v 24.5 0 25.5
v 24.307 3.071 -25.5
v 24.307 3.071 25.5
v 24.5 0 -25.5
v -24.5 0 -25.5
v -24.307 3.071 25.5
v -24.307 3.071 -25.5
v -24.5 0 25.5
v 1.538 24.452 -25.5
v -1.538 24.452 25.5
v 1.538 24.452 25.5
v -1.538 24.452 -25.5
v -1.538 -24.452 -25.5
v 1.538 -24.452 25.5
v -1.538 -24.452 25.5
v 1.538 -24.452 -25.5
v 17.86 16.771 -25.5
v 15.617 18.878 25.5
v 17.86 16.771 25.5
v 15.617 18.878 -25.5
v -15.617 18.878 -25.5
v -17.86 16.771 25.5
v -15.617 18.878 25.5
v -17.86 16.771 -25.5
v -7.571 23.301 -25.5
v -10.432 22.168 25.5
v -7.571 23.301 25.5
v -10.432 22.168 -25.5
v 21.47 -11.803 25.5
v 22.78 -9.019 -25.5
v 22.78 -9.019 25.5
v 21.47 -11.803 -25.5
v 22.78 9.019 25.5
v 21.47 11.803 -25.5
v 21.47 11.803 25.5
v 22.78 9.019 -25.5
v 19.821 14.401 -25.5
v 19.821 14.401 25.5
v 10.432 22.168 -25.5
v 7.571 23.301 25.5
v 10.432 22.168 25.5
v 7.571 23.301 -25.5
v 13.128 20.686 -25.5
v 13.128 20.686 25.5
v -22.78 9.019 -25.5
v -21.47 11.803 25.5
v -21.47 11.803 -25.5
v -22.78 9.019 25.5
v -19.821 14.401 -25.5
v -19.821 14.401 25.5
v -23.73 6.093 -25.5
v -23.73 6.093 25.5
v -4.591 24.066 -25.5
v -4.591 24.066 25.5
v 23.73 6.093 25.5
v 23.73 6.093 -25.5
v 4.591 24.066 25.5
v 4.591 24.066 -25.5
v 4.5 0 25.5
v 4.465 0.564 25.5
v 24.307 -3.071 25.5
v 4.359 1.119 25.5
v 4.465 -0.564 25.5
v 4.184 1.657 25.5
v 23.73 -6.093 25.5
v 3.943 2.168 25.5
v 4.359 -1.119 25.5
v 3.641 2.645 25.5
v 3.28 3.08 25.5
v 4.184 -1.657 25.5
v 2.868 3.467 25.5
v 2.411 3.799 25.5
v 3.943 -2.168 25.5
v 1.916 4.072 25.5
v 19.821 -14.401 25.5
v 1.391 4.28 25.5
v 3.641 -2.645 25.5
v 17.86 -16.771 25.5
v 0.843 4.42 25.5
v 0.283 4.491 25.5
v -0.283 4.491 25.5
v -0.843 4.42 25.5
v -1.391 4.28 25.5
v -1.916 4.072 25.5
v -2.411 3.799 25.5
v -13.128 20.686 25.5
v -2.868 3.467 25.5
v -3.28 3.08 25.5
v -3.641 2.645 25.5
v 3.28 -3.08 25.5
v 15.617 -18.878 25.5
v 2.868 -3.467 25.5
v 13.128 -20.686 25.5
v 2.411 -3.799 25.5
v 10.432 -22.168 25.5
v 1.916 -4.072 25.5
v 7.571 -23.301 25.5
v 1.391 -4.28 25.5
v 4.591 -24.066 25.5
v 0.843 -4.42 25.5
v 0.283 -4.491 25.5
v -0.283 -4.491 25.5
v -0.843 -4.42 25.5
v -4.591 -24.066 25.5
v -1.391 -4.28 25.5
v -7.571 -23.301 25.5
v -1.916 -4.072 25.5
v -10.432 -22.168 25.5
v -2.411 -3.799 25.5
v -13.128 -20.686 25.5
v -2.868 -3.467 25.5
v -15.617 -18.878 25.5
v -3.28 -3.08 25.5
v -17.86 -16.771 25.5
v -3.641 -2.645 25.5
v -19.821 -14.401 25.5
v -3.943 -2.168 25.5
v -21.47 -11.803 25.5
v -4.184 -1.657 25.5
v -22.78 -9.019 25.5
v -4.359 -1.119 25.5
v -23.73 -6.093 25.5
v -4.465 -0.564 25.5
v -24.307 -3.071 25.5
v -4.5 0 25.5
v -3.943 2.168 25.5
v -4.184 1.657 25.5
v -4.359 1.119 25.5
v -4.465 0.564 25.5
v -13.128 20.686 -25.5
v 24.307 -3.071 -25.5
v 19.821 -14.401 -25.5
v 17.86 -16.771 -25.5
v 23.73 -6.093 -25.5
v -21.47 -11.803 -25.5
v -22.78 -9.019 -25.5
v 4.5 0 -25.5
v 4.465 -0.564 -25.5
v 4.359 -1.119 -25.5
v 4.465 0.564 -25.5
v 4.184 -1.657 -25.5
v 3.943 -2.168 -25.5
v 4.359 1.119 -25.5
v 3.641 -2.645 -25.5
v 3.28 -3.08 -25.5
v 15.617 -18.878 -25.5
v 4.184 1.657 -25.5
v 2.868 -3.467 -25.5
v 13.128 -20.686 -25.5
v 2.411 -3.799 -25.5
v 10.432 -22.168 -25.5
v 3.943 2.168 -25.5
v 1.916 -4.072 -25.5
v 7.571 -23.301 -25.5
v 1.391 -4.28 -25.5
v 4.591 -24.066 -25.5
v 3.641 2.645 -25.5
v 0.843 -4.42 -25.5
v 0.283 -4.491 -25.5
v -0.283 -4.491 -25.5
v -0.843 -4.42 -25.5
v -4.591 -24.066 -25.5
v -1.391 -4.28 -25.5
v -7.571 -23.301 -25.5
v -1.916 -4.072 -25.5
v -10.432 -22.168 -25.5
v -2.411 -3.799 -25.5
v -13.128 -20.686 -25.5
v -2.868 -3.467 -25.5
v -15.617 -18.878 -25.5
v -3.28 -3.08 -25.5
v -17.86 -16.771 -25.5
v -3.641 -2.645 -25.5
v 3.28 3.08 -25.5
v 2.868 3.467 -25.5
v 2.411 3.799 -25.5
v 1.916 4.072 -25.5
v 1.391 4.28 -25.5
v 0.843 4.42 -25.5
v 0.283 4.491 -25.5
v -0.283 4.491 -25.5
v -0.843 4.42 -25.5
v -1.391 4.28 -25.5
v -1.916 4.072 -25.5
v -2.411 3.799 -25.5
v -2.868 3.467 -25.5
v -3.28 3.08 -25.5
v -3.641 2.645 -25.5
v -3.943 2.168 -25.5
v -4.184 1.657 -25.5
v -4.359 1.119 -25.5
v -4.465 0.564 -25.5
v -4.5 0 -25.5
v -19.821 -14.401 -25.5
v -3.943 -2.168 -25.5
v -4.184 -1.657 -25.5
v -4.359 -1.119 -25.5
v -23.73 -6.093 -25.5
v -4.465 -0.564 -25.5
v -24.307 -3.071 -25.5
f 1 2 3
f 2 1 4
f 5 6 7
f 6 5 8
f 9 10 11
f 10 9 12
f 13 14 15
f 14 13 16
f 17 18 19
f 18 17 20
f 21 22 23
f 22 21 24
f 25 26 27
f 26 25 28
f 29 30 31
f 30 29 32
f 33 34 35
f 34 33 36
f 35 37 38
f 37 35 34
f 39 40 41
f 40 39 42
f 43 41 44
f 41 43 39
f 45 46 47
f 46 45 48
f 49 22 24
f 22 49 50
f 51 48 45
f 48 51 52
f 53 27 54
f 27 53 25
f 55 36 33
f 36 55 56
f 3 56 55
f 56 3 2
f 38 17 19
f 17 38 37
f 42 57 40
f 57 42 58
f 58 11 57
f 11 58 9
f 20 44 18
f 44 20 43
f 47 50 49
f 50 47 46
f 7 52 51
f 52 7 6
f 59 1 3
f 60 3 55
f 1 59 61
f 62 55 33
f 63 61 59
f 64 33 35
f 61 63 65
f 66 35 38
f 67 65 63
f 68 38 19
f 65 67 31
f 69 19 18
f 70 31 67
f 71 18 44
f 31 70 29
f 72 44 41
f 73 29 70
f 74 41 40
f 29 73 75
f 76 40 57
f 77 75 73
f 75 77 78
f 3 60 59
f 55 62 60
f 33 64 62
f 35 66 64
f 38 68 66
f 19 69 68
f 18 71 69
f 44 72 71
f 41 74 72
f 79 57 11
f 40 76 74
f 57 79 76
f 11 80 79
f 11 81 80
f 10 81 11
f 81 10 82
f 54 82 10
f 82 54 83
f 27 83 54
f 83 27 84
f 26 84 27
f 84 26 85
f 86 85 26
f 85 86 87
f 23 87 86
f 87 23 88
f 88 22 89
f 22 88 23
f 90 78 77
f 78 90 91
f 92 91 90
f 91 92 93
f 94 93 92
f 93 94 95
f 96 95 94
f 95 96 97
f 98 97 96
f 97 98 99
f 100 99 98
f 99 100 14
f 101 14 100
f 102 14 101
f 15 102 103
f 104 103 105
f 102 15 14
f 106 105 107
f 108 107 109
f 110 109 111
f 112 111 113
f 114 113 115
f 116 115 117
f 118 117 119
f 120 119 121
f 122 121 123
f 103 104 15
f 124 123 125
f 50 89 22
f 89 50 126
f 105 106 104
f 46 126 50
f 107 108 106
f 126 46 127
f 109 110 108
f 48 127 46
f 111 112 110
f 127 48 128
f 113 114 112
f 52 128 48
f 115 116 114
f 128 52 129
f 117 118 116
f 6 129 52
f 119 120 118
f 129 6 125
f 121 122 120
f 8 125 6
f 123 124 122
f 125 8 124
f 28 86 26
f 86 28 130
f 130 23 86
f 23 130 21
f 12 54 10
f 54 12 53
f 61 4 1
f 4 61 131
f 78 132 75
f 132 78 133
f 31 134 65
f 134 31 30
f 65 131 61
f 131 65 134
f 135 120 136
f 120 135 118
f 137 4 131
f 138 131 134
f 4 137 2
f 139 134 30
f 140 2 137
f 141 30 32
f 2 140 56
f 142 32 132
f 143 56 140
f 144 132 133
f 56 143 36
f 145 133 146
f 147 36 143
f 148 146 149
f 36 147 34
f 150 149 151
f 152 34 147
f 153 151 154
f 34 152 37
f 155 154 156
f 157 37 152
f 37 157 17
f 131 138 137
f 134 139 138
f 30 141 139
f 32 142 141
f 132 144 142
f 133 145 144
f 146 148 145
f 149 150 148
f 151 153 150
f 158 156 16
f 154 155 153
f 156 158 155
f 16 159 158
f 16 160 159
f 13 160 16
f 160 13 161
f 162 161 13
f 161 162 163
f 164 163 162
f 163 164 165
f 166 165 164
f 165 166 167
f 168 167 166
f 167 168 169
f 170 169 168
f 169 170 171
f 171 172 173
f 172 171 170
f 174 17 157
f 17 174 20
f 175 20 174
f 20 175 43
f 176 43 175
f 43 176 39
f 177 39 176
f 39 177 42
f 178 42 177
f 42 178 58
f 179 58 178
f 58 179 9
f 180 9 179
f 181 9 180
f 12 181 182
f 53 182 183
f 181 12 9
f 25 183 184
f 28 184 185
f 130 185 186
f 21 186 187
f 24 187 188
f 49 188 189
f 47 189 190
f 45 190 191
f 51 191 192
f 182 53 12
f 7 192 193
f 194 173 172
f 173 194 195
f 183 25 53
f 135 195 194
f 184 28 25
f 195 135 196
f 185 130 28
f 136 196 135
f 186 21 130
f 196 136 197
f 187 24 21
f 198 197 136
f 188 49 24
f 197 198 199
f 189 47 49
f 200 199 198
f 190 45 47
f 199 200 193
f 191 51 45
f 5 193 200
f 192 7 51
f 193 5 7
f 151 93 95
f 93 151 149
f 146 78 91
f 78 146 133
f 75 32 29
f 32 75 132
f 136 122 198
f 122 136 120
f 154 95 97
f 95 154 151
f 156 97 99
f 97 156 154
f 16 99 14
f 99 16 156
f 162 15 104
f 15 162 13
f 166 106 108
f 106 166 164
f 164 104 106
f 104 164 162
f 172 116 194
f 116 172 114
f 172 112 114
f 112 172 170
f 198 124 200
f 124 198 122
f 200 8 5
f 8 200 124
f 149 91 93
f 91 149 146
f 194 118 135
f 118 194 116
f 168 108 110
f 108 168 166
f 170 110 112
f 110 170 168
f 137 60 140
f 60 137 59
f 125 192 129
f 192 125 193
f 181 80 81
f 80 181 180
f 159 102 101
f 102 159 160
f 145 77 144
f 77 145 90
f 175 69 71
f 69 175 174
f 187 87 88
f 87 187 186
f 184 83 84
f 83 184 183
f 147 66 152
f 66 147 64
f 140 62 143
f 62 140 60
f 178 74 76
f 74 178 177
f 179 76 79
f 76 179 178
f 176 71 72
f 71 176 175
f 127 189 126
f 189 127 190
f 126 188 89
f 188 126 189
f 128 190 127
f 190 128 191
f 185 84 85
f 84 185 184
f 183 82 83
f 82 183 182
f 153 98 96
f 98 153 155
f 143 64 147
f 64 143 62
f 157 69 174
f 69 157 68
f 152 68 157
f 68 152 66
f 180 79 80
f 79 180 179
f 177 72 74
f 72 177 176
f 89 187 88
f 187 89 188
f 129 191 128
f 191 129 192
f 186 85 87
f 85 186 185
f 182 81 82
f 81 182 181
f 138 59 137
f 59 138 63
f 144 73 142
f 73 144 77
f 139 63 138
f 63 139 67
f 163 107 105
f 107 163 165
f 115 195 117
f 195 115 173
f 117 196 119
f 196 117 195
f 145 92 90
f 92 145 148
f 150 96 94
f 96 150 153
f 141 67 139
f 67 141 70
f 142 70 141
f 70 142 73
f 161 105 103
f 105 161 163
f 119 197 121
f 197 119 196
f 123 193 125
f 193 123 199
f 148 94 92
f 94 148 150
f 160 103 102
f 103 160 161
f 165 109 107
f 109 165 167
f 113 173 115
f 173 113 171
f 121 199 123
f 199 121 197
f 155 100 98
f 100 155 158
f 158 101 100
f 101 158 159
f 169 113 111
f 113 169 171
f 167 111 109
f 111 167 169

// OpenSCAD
$fn = 50;


difference() {
	union() {
		translate(v = [0, 0, -25.5000000000]) {
			cylinder(h = 51, r = 24.5000000000);
		}
	}
	union() {
		translate(v = [0, 0, -100.0000000000]) {
			cylinder(h = 200, r = 4.5000000000);
		}
	}
}
